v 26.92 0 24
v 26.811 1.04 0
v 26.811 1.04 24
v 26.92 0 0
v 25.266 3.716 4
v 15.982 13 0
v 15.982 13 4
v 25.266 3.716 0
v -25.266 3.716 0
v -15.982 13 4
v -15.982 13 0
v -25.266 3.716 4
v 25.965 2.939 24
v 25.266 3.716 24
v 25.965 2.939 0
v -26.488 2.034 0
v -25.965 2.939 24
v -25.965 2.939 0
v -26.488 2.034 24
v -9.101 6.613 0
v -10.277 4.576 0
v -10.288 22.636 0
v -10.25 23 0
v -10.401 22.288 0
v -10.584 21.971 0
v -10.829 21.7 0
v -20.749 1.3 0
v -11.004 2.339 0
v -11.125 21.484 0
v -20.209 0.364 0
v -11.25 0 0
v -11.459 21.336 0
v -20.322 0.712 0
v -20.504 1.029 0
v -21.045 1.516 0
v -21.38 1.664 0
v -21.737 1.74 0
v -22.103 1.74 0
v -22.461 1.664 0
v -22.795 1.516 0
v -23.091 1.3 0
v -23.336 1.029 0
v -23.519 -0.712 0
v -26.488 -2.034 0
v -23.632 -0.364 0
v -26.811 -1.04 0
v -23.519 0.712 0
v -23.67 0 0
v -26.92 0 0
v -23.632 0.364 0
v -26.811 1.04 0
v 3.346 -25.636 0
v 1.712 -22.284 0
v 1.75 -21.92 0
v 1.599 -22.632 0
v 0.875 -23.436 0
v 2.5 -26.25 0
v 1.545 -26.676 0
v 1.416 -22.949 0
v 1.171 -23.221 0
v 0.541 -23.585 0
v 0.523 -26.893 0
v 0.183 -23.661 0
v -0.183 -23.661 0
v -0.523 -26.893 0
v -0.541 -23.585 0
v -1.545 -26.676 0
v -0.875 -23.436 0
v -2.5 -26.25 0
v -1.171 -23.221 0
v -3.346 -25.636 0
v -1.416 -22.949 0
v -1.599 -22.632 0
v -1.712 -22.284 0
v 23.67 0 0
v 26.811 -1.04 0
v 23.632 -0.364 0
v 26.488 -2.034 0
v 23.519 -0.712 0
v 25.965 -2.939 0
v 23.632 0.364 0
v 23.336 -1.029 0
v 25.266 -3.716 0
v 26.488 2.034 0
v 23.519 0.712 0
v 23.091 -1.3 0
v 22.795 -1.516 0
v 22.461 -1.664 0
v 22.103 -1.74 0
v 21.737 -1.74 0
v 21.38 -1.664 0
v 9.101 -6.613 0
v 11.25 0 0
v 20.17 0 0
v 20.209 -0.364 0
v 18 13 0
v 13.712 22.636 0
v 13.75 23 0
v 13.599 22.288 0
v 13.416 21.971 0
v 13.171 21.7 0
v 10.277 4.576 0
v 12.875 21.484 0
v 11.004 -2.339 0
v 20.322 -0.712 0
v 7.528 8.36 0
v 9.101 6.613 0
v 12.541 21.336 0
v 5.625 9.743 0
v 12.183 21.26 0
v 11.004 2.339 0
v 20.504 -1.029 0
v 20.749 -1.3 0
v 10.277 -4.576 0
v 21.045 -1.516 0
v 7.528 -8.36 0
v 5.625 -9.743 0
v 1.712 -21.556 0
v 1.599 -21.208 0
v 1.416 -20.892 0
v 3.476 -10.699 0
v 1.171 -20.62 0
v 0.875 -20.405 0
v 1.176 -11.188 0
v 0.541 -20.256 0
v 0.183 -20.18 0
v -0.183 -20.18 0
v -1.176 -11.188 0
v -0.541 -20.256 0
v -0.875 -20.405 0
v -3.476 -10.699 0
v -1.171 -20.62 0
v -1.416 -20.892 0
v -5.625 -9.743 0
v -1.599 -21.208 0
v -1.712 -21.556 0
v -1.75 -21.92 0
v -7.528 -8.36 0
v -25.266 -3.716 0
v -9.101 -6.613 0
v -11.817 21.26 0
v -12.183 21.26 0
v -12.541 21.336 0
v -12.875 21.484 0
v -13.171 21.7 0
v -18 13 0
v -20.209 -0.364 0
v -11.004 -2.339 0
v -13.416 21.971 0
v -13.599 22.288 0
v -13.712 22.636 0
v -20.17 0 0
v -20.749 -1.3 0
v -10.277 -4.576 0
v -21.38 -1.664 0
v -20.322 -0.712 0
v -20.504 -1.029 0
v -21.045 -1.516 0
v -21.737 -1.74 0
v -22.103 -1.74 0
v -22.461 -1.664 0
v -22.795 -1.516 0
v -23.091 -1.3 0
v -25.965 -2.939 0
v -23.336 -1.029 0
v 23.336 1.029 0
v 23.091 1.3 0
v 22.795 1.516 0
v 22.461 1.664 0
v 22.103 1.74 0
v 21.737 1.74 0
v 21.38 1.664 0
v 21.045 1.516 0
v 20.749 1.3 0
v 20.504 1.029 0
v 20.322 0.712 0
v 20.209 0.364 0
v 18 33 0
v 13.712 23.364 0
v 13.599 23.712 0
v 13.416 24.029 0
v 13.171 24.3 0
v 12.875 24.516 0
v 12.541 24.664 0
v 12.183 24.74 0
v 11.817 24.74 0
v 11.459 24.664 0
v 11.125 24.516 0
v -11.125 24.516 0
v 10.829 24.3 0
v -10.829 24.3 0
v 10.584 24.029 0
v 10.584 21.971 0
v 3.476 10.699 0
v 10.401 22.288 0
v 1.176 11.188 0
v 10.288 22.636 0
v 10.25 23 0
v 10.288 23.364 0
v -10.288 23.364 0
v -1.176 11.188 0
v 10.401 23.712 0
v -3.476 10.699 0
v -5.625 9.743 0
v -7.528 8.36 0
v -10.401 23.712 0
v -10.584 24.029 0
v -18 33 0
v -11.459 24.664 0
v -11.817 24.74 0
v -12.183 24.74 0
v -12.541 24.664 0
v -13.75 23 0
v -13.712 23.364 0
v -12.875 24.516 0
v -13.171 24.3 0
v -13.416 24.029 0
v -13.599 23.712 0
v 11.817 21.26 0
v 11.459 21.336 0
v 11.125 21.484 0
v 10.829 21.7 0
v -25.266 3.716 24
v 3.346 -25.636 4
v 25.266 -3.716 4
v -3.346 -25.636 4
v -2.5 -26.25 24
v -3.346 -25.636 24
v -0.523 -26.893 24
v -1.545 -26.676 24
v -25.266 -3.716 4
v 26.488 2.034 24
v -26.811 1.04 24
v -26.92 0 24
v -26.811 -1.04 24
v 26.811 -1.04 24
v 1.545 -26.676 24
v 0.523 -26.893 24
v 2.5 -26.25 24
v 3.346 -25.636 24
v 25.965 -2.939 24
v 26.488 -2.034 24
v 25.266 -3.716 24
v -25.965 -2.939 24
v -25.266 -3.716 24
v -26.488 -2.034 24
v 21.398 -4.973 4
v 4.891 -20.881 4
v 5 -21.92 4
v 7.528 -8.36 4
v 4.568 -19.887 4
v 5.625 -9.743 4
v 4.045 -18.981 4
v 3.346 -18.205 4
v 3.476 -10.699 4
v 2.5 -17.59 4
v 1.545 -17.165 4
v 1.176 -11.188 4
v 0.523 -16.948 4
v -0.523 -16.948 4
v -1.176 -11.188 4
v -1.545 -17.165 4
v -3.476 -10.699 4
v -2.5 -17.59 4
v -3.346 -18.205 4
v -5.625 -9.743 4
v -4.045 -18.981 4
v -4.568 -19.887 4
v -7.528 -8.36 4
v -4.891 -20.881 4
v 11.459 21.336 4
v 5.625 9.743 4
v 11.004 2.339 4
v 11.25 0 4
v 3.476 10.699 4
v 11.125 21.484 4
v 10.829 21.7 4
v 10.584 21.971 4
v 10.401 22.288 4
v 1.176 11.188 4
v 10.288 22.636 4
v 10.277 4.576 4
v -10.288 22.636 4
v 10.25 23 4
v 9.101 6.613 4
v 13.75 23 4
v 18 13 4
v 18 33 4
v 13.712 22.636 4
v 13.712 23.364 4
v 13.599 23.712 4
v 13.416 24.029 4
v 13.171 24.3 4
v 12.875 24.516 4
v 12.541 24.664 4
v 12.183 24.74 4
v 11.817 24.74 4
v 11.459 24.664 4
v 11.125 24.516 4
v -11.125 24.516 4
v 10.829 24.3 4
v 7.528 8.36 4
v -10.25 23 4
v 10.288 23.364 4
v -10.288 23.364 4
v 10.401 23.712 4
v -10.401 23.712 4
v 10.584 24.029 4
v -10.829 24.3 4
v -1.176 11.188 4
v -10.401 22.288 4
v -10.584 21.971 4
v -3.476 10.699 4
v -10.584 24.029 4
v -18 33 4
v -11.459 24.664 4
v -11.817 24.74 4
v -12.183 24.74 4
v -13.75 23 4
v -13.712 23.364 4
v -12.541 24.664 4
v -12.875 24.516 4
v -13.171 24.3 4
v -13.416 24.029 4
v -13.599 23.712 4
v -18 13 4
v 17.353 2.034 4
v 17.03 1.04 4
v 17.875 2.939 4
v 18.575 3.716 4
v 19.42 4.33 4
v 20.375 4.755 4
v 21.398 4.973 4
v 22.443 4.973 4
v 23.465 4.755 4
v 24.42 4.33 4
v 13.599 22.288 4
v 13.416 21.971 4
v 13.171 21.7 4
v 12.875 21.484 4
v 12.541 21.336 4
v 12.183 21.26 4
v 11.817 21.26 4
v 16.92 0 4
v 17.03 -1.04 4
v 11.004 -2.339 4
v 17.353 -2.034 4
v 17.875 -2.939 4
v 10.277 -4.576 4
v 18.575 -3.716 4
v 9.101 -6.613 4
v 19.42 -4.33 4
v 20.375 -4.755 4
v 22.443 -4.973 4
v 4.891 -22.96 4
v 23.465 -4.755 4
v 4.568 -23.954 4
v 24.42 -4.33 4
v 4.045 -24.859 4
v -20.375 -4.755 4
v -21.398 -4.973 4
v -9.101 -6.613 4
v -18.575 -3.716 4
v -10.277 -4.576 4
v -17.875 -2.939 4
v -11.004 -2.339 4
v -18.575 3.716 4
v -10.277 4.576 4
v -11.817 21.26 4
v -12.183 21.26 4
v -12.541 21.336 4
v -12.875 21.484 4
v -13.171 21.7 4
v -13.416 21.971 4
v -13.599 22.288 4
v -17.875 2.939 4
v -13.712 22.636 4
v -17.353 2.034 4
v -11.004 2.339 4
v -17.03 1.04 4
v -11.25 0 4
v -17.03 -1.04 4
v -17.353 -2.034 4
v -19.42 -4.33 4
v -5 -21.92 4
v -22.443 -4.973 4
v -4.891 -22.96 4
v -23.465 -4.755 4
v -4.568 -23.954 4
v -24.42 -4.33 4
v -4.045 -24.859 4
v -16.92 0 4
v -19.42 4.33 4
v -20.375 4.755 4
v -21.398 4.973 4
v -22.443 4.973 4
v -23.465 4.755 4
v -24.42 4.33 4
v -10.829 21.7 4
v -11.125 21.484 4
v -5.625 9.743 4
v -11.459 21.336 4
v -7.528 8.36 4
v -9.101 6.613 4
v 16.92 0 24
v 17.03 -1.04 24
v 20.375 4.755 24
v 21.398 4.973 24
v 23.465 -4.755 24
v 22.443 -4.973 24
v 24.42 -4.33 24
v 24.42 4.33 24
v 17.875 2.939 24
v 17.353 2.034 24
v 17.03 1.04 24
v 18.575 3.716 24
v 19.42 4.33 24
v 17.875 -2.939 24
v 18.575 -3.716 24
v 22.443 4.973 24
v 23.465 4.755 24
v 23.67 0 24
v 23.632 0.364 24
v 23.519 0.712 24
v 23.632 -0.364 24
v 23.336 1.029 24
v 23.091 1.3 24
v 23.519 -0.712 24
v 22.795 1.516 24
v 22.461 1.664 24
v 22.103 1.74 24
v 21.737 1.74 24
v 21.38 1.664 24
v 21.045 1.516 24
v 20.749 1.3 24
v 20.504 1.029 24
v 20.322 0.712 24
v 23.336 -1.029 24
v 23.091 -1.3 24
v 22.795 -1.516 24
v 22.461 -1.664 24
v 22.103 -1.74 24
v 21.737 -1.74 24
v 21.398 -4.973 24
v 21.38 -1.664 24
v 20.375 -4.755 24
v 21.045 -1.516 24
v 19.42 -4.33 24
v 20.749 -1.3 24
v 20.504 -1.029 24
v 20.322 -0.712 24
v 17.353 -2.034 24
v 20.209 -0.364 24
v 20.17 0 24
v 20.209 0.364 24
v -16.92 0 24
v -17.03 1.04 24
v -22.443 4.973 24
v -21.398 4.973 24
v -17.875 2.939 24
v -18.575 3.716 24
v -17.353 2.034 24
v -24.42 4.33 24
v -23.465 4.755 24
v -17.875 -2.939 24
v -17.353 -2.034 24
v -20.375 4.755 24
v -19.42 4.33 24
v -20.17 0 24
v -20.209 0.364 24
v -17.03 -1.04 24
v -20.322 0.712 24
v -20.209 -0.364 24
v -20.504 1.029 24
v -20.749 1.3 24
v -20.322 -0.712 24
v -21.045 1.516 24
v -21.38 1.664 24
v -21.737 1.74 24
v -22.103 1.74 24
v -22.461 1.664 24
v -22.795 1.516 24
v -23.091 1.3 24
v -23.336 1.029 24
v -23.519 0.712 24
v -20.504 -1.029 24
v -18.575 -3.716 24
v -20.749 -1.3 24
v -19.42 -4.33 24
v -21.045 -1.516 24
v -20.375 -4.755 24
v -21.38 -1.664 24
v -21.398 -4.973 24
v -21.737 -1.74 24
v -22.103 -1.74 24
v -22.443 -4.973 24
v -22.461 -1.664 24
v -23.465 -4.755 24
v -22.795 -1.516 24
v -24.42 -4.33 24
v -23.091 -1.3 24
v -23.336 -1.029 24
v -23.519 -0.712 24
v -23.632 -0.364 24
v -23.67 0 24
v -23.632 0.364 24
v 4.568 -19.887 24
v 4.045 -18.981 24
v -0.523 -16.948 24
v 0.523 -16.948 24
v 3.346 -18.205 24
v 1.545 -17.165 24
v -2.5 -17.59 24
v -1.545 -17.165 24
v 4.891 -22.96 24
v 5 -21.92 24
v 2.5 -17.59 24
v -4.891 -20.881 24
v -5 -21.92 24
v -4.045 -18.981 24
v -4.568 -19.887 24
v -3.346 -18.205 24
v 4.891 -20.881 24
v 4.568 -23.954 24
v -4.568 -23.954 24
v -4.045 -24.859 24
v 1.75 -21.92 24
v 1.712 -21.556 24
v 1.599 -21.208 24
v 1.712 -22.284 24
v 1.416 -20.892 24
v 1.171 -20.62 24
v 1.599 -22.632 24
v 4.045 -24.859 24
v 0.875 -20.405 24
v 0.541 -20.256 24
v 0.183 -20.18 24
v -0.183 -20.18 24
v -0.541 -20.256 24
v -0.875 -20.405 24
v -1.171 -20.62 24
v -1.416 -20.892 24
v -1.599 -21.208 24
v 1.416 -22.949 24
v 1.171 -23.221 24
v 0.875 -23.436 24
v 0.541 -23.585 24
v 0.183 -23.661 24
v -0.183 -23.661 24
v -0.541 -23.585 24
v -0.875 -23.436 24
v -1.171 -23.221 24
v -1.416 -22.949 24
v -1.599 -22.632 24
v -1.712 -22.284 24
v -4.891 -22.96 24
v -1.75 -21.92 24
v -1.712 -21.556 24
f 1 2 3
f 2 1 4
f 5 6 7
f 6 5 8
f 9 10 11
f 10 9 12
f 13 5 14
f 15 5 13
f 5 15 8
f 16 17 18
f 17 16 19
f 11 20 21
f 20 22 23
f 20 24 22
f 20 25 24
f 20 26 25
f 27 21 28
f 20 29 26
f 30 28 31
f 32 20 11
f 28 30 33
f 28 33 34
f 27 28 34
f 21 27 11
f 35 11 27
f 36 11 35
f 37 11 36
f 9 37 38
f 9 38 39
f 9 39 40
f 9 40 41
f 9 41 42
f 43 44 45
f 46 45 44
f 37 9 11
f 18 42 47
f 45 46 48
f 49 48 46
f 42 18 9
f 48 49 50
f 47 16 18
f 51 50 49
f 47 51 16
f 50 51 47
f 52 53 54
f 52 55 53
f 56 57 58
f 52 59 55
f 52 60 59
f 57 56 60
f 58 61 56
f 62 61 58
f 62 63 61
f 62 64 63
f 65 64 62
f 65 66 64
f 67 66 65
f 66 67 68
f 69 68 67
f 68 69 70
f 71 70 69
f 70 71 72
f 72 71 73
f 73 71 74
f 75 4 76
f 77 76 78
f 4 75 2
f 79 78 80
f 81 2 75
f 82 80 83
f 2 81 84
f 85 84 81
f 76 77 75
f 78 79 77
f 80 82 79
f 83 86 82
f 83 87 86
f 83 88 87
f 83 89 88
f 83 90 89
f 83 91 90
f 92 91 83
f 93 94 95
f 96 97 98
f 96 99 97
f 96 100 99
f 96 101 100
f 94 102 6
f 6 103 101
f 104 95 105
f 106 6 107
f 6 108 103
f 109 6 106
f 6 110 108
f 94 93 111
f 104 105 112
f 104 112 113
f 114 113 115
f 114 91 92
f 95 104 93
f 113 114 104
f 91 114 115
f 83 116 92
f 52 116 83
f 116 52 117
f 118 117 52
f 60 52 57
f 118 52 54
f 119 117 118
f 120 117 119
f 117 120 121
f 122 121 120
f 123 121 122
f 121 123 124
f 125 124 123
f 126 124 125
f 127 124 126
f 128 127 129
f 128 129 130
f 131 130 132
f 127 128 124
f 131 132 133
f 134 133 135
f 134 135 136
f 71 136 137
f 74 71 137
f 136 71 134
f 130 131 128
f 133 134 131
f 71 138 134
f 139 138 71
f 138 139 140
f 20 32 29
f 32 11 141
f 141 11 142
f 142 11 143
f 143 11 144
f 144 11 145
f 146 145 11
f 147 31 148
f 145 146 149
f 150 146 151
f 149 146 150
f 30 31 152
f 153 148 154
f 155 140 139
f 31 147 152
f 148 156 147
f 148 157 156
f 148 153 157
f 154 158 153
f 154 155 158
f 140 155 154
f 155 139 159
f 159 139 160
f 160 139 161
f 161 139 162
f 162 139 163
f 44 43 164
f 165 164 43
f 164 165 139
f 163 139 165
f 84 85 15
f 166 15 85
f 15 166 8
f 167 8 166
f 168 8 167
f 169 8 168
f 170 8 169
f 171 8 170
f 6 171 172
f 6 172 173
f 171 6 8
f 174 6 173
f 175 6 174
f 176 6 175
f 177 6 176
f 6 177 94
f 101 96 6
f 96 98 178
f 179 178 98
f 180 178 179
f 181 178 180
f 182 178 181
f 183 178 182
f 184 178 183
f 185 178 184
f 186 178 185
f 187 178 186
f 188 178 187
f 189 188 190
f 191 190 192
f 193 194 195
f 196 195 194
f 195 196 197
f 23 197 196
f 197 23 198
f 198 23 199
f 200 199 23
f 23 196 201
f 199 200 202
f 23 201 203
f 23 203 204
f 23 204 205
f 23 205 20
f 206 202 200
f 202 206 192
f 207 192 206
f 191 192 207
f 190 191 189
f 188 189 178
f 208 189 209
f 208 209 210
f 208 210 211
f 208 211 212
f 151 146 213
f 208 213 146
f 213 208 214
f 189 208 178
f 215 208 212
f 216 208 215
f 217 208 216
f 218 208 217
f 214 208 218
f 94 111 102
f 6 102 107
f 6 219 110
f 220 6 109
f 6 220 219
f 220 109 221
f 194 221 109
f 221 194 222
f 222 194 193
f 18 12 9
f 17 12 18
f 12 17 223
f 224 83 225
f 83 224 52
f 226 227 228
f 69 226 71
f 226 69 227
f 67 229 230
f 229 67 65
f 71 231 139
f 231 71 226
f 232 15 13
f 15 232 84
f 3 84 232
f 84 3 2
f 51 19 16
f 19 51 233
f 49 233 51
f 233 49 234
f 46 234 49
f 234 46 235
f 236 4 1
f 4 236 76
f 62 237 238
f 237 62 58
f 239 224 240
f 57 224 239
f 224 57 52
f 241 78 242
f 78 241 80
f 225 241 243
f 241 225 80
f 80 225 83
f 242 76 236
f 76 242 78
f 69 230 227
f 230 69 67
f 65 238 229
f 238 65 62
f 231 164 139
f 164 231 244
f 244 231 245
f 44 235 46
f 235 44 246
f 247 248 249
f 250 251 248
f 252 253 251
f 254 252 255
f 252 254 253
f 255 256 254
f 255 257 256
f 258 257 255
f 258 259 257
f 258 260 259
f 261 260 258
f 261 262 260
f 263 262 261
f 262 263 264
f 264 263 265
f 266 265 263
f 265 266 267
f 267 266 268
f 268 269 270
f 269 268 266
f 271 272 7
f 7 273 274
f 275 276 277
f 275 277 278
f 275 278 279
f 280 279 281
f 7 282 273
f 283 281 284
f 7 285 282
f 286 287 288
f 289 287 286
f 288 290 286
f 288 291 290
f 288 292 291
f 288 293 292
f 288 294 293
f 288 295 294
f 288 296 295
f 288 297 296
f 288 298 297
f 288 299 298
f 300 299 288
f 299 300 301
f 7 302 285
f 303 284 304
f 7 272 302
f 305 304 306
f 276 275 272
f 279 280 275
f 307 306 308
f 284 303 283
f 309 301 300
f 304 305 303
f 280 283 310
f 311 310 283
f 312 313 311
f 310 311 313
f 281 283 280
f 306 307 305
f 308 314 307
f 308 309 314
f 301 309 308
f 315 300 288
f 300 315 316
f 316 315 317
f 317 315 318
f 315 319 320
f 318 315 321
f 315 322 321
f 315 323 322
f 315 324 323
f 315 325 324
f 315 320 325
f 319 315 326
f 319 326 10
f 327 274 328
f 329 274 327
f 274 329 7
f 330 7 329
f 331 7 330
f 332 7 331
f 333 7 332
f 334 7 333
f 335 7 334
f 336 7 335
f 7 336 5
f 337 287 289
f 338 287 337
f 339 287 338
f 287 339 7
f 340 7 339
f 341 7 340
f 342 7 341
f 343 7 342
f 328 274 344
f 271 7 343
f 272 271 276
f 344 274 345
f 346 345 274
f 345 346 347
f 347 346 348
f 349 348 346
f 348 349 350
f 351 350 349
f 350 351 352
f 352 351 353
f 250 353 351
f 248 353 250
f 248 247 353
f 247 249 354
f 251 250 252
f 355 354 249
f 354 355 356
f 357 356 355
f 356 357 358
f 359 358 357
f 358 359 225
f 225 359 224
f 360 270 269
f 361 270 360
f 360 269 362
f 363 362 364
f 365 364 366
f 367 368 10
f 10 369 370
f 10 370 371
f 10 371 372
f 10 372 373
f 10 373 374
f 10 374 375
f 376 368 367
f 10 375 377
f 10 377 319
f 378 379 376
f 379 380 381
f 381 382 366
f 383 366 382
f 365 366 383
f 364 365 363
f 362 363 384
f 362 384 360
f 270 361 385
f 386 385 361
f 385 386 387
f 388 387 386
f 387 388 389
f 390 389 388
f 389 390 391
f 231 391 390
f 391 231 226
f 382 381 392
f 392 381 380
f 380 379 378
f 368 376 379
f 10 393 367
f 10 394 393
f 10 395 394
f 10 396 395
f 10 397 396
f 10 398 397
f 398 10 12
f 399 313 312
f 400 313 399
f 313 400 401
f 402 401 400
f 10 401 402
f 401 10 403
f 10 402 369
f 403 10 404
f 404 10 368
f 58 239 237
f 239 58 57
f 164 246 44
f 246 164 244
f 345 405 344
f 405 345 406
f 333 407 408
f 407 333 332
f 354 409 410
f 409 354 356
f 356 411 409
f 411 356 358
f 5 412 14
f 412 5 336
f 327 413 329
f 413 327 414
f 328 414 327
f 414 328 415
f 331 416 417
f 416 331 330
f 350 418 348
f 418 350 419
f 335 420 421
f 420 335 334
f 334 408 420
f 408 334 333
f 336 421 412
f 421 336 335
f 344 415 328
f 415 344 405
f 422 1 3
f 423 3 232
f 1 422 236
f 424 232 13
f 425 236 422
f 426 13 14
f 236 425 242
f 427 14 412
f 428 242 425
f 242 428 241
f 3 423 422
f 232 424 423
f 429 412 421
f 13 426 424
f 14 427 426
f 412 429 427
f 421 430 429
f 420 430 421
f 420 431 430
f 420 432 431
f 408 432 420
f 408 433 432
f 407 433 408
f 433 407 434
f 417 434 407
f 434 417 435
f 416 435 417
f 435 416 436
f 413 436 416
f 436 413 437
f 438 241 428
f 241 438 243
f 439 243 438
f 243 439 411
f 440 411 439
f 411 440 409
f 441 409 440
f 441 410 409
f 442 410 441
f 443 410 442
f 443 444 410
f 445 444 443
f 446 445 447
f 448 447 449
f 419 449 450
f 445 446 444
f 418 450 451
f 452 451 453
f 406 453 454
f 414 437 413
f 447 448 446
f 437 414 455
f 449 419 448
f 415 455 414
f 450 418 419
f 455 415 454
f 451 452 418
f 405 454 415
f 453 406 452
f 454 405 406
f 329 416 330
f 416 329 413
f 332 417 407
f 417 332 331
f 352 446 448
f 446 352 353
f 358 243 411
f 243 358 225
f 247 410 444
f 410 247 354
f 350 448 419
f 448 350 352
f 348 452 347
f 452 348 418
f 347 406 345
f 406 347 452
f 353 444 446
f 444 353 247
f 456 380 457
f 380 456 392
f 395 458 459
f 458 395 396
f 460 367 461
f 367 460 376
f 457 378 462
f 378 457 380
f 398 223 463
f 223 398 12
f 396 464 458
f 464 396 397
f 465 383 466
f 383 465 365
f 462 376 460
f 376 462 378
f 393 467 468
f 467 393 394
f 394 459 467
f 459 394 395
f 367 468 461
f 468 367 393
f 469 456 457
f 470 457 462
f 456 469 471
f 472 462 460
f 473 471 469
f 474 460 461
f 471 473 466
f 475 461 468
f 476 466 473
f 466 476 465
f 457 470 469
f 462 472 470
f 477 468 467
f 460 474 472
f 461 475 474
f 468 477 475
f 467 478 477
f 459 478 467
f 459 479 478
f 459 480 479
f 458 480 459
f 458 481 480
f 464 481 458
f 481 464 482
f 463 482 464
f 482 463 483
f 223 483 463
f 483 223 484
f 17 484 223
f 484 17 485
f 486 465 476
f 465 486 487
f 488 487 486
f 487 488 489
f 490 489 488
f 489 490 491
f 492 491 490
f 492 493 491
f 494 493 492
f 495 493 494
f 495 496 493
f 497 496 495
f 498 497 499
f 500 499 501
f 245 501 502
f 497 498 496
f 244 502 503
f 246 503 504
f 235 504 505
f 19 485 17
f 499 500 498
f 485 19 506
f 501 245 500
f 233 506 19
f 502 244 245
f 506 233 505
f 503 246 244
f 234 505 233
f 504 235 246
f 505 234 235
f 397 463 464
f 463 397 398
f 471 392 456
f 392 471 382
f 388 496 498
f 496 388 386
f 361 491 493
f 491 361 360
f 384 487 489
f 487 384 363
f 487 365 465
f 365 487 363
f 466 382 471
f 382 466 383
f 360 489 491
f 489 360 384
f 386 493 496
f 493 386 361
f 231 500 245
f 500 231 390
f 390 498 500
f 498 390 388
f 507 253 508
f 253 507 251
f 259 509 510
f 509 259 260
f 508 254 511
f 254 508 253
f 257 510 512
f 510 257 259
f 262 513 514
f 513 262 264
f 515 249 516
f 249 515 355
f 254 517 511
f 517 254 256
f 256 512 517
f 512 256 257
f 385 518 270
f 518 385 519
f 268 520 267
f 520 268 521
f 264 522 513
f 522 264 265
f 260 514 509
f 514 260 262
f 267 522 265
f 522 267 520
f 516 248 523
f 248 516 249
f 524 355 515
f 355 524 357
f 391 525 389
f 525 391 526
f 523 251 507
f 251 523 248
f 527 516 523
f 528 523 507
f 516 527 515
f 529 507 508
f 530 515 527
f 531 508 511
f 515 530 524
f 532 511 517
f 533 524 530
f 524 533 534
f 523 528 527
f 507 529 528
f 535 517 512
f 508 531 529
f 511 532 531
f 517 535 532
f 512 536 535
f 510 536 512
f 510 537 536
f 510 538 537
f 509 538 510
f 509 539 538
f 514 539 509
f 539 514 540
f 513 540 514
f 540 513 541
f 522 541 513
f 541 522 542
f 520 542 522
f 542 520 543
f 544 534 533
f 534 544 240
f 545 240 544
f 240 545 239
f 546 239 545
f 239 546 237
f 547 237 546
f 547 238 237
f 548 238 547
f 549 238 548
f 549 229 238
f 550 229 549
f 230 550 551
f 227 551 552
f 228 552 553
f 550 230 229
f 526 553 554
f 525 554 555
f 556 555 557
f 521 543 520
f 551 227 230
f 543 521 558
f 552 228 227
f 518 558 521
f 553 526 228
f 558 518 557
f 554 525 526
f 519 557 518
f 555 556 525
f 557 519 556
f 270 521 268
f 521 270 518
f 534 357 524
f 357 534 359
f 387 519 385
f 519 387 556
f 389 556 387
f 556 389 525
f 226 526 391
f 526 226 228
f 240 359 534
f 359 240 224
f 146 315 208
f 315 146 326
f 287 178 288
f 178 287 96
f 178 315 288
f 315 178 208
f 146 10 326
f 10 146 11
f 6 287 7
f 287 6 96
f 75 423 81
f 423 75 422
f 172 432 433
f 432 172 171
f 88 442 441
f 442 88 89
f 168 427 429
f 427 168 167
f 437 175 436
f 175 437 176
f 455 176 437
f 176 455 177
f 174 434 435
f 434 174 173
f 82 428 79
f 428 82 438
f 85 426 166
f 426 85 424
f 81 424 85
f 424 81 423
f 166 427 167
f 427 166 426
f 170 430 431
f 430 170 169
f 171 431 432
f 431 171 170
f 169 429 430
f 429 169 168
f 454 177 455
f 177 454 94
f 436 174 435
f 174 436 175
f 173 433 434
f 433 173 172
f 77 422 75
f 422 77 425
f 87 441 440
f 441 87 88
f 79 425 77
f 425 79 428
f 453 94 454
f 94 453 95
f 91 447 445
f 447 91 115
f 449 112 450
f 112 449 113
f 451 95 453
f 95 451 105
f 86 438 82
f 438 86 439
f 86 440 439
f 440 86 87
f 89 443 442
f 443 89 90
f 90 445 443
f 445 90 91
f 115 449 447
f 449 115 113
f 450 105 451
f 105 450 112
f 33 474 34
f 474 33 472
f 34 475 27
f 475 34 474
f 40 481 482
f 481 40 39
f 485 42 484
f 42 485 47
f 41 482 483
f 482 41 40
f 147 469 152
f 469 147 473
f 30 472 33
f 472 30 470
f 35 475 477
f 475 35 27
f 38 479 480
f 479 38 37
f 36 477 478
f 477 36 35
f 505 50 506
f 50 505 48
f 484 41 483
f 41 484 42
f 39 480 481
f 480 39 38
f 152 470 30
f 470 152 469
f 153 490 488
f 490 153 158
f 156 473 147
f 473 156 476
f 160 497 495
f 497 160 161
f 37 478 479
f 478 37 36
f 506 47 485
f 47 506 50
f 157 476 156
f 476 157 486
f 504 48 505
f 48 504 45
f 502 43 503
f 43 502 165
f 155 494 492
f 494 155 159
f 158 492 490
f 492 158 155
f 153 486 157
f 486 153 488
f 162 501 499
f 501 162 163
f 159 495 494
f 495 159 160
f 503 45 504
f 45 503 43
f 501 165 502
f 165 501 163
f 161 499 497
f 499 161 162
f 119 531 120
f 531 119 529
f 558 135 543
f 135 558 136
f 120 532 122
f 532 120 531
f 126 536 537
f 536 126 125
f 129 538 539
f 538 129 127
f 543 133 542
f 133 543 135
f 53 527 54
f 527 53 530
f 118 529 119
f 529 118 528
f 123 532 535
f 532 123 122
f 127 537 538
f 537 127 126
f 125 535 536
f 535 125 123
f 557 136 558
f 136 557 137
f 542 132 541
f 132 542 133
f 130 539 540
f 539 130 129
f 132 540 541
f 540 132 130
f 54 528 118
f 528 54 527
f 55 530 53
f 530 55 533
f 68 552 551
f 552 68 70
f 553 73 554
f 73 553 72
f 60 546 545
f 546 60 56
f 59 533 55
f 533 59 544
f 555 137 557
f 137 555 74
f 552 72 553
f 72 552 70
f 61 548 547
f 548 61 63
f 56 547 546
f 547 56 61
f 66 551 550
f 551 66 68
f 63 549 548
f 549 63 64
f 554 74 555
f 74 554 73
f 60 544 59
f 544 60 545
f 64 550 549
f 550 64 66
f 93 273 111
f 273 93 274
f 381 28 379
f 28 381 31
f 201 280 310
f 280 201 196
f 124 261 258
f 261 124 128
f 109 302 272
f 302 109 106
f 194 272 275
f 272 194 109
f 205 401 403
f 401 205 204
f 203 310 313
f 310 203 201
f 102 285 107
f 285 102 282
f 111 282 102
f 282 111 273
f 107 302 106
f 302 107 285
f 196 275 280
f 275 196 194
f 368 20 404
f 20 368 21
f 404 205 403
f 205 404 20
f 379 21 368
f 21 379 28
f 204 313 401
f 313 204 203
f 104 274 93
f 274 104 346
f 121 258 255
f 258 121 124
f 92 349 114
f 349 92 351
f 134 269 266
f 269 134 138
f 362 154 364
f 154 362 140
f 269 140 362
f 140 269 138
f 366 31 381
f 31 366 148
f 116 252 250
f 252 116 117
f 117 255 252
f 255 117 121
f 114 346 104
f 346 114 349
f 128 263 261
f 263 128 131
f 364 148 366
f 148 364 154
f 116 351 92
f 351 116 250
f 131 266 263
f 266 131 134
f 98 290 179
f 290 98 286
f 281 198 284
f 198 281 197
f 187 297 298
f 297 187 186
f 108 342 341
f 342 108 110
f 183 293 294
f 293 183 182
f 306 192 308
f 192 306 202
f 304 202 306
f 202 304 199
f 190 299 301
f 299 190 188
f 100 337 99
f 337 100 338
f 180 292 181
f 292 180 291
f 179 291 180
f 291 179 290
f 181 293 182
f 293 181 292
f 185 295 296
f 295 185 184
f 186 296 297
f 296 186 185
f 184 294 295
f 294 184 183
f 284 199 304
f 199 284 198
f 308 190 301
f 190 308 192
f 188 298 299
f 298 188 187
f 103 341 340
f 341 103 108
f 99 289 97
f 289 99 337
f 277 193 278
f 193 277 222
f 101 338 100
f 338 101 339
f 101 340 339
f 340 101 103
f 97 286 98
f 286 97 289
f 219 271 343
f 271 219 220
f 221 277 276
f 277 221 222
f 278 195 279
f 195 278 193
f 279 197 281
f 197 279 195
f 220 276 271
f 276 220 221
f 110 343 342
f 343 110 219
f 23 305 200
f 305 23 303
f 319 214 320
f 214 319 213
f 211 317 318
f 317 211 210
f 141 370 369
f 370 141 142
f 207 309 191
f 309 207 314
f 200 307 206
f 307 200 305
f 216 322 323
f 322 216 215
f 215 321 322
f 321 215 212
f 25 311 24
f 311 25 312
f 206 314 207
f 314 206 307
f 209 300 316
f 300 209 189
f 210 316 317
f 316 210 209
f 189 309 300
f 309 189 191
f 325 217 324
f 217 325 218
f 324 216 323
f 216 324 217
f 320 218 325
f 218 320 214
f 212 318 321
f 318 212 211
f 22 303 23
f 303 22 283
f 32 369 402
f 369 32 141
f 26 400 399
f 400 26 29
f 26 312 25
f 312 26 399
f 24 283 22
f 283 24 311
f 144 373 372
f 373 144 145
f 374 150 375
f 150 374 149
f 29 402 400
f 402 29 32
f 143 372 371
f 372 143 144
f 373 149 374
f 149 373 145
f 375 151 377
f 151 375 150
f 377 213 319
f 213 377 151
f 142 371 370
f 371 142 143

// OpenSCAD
nema_screw_dist = 43.840620434/2;

axle_d = 13;

screw = 3.5;
screw_wall = 10;
screw_res = 30;
space = 20;

plate = 4;
frame = 20;
difference() {
    union() {
        hull() {
            translate([nema_screw_dist, 0, 0])cylinder(d=screw_wall, h = plate, $fn=screw_res);
            translate([-nema_screw_dist, 0, 0])cylinder(d=screw_wall, h = plate, $fn=screw_res);
            translate([0, -nema_screw_dist, 0])cylinder(d=screw_wall, h = plate, $fn=screw_res);
            translate([0, nema_screw_dist, 0])cylinder(d=screw_wall, h = plate, $fn=screw_res);
            //translate([18, axle_d, 0]) cube([1,frame,plate]);
            //translate([-18, axle_d, 0]) cube([1,frame,plate]);
        }
        // rising poles
        translate([nema_screw_dist, 0, 0])cylinder(d=screw_wall, h = plate+space, $fn=screw_res);
        translate([-nema_screw_dist, 0, 0])cylinder(d=screw_wall, h = plate+space, $fn=screw_res);
        translate([0, -nema_screw_dist, 0])cylinder(d=screw_wall, h = plate+space, $fn=screw_res);
        //frame mount plate
        translate([-18, axle_d, 0]) cube([18*2,frame,plate]);
    }
    translate([nema_screw_dist, 0, 0])cylinder(d=screw, h = plate+space, $fn=screw_res);
    translate([-nema_screw_dist, 0, 0])cylinder(d=screw, h = plate+space, $fn=screw_res);
    translate([0, -nema_screw_dist, 0])cylinder(d=screw, h = plate+space, $fn=screw_res);
    translate([0, 0, 0])cylinder(d=22.5, h = plate, $fn=screw_res);
    translate([18, axle_d, -1]) cube([frame,frame,plate+2]);
    translate([-18-frame, axle_d, -1]) cube([frame,frame,plate+2]);
    
    //frame screw holes
    translate([18-6,axle_d+frame/2 , 0])cylinder(d=screw, h = plate, $fn=screw_res);
    translate([-18+6,axle_d+frame/2 , 0])cylinder(d=screw, h = plate, $fn=screw_res);
}
